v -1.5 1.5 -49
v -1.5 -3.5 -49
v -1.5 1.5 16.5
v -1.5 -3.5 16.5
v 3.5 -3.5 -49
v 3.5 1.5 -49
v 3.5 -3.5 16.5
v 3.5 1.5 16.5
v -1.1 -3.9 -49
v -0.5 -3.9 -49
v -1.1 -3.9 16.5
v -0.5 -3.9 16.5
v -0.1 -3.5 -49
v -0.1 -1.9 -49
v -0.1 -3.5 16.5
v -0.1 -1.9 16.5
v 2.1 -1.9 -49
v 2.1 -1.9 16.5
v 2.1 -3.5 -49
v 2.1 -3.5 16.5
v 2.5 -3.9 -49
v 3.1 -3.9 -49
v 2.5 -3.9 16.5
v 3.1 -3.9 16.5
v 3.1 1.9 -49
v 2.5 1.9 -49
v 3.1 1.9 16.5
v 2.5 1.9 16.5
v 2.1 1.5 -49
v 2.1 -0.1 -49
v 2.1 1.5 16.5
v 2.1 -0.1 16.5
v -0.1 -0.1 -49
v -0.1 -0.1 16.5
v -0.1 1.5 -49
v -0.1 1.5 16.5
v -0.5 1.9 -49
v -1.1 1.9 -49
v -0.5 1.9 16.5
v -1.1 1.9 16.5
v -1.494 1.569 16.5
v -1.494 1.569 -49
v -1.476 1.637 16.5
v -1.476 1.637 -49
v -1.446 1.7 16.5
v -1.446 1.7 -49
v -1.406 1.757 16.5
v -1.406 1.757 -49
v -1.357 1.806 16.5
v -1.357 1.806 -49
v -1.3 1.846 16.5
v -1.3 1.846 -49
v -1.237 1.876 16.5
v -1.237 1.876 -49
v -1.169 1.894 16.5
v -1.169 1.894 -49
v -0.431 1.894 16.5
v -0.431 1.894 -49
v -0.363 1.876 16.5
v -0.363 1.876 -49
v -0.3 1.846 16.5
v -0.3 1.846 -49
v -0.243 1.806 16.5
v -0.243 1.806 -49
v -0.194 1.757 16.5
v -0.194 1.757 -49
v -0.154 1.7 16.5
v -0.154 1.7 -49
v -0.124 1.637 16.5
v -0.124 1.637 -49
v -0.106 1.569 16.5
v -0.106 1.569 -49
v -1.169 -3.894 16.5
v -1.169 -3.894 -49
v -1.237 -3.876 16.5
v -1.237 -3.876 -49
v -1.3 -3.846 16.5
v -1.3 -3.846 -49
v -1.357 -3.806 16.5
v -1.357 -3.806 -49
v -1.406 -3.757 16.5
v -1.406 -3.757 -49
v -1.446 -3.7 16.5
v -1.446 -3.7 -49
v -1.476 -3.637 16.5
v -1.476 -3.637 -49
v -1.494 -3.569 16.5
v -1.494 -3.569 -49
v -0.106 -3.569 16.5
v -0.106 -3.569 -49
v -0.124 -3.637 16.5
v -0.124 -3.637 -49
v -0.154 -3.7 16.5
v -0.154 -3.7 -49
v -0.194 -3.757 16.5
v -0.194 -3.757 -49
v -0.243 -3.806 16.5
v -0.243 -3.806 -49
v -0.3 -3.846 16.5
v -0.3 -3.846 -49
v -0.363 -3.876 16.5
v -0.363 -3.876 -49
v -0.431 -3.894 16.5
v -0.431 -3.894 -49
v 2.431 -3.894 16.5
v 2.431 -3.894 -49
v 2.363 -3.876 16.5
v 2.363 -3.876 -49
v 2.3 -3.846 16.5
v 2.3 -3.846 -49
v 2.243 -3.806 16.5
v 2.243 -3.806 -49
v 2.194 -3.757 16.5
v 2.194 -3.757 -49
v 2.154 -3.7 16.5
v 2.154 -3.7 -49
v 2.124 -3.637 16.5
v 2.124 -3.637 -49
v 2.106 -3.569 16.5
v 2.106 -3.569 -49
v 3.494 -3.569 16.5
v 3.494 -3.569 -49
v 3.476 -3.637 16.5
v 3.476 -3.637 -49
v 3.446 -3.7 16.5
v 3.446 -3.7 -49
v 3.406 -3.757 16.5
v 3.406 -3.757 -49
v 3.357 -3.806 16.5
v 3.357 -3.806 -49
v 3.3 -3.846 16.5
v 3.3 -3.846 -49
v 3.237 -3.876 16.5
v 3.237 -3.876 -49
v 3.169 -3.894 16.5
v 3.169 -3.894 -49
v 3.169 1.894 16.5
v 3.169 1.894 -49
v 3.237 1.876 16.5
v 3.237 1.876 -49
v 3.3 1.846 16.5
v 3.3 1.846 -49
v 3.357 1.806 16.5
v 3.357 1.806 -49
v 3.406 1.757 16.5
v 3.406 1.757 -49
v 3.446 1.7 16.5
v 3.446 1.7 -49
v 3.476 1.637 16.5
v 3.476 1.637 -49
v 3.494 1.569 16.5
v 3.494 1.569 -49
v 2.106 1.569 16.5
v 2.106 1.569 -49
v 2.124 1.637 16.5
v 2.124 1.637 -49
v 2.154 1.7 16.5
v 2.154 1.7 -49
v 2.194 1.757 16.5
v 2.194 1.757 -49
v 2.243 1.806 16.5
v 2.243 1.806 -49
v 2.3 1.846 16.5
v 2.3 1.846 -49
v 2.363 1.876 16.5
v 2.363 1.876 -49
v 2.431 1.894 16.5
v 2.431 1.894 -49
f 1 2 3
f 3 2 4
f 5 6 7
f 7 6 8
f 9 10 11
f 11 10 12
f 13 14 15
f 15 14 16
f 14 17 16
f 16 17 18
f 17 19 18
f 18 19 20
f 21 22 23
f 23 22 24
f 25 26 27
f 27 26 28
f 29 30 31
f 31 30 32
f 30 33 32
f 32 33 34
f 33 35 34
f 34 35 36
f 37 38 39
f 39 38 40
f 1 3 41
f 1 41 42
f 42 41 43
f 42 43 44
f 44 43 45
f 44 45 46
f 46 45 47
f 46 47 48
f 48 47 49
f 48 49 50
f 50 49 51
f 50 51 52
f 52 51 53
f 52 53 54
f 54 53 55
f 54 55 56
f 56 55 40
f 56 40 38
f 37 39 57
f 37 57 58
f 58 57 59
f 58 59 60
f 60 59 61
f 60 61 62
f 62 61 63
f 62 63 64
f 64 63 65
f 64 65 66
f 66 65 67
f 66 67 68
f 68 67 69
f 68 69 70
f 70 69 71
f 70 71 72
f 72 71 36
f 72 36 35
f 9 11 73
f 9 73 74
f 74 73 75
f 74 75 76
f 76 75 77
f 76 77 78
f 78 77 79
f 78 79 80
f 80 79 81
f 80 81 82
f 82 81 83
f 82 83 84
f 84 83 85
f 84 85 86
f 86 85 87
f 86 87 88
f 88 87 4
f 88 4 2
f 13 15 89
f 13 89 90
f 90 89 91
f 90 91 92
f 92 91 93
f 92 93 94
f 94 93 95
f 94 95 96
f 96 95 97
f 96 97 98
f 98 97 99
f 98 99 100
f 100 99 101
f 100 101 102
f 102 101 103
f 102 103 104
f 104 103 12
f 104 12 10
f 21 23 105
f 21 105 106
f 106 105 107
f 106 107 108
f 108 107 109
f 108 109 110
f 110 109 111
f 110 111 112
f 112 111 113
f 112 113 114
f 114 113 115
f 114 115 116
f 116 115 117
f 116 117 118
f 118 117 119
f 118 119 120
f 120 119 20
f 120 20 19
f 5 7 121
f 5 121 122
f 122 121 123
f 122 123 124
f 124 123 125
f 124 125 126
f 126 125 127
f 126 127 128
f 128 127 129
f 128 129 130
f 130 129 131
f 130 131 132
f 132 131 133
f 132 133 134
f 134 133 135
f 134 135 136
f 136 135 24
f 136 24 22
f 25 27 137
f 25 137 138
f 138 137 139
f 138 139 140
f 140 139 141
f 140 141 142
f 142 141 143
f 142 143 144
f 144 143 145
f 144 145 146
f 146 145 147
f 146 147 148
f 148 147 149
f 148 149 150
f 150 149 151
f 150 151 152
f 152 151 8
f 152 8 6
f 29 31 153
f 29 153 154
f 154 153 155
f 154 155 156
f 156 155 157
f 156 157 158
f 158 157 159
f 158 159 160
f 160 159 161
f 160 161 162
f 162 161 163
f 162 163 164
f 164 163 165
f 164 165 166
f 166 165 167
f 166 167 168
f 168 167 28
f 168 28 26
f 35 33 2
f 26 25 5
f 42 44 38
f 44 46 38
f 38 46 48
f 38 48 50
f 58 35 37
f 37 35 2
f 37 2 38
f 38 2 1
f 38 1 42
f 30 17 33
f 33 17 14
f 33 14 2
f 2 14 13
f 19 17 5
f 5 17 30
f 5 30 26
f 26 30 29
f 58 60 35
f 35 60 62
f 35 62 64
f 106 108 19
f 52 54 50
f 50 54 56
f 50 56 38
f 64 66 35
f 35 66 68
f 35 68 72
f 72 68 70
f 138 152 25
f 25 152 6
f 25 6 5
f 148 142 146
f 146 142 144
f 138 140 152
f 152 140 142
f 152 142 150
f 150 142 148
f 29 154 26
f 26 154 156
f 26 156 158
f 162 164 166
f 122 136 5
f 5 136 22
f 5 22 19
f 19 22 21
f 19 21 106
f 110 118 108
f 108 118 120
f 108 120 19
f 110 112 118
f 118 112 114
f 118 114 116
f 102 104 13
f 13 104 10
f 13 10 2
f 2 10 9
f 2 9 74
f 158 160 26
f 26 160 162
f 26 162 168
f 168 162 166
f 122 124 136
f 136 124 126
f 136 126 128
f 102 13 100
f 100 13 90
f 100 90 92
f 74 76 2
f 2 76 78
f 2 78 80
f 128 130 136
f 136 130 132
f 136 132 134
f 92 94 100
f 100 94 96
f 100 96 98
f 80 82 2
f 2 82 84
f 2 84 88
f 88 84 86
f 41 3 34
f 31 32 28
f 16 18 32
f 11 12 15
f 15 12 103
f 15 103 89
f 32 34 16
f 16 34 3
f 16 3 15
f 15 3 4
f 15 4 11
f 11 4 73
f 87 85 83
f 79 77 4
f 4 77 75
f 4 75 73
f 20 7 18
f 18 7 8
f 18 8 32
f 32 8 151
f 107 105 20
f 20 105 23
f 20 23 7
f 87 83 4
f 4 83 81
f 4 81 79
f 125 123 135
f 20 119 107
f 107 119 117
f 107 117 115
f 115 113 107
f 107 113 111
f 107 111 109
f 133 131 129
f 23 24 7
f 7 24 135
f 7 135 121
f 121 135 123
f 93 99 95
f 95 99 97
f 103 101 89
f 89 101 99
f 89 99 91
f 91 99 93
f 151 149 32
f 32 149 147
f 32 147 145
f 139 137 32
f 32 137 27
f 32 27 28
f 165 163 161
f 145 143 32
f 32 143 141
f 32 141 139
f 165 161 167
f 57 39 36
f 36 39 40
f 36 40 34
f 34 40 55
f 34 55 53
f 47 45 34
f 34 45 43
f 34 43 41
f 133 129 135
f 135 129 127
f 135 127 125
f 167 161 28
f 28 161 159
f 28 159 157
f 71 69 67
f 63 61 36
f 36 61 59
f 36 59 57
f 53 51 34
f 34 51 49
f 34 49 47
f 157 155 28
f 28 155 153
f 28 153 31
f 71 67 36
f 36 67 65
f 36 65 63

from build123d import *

# Parameters (mm, degrees)
BOSS_EXTRUDE1_DEPTH = 21
CUT_EXTRUDE1_DEPTH  = 22.662179022
BOSS_EXTRUDE2_DEPTH = 49
FILLET1_R           = 0.4
SKETCH4_W           = 7.390362968
SKETCH4_H           = 6.925637862
CUT_EXTRUDE2_DEPTH  = 4.5


with BuildPart() as part:
    # Sketch1 → Boss-Extrude1 (new body)
    with BuildSketch(Plane.XY):
        Polygon((0, 0), (2, 0), (2, 2), (3.5, 2), (3.5, -4), (2, -4), (2, -2), (0, -2), (0, -4), (-1.5, -4), (-1.5, 2), (0, 2), align=None)
    extrude(amount=BOSS_EXTRUDE1_DEPTH)

    # Sketch2 → Cut-Extrude1 (cut, through all)
    with BuildSketch(Plane.XY.offset(21)):
        Polygon((-1.5, 2), (-1.5, 1.9), (-0.1, 1.9), (-0.1, -0.1), (2.1, -0.1), (2.1, 1.9), (3.5, 1.9), (3.5, 2), align=None)
        Polygon((-1.5, -4), (3.5, -4), (3.5, -3.9), (2.1, -3.9), (2.1, -1.9), (-0.1, -1.9), (-0.1, -3.9), (-1.5, -3.9), align=None)
    extrude(amount=-CUT_EXTRUDE1_DEPTH, mode=Mode.SUBTRACT)

    # Sketch3 → Boss-Extrude2 (add)
    with BuildSketch(Plane(origin=(0, 0, 0), x_dir=(-1, 0, 0), z_dir=(0, 0, -1))):
        Polygon((-2.1, -0.1), (-2.1, 1.9), (-3.5, 1.9), (-3.5, -3.9), (-2.1, -3.9), (-2.1, -1.9), (0.1, -1.9), (0.1, -3.9), (1.5, -3.9), (1.5, 1.9), (0.1, 1.9), (0.1, -0.1), align=None)
    extrude(amount=BOSS_EXTRUDE2_DEPTH)

    # Fillet1
    fillet1_edges = [part.edges().sort_by_distance(p)[0] for p in [
        (3.5, 1.9, -14),
        (2.1, 1.9, -14),
        (-0.1, 1.9, -14),
        (-1.5, 1.9, -14),
        (-1.5, -3.9, -14),
        (-0.1, -3.9, -14),
        (2.1, -3.9, -14),
        (3.5, -3.9, -14),
    ]]
    fillet(fillet1_edges, radius=FILLET1_R)

    # Sketch4 → Cut-Extrude2 (cut)
    with BuildSketch(Plane.XY.offset(21)):
        with Locations((1.359853511, -0.992123471)):
            Rectangle(SKETCH4_W, SKETCH4_H)
    extrude(amount=-CUT_EXTRUDE2_DEPTH, mode=Mode.SUBTRACT)


solid = part.part
